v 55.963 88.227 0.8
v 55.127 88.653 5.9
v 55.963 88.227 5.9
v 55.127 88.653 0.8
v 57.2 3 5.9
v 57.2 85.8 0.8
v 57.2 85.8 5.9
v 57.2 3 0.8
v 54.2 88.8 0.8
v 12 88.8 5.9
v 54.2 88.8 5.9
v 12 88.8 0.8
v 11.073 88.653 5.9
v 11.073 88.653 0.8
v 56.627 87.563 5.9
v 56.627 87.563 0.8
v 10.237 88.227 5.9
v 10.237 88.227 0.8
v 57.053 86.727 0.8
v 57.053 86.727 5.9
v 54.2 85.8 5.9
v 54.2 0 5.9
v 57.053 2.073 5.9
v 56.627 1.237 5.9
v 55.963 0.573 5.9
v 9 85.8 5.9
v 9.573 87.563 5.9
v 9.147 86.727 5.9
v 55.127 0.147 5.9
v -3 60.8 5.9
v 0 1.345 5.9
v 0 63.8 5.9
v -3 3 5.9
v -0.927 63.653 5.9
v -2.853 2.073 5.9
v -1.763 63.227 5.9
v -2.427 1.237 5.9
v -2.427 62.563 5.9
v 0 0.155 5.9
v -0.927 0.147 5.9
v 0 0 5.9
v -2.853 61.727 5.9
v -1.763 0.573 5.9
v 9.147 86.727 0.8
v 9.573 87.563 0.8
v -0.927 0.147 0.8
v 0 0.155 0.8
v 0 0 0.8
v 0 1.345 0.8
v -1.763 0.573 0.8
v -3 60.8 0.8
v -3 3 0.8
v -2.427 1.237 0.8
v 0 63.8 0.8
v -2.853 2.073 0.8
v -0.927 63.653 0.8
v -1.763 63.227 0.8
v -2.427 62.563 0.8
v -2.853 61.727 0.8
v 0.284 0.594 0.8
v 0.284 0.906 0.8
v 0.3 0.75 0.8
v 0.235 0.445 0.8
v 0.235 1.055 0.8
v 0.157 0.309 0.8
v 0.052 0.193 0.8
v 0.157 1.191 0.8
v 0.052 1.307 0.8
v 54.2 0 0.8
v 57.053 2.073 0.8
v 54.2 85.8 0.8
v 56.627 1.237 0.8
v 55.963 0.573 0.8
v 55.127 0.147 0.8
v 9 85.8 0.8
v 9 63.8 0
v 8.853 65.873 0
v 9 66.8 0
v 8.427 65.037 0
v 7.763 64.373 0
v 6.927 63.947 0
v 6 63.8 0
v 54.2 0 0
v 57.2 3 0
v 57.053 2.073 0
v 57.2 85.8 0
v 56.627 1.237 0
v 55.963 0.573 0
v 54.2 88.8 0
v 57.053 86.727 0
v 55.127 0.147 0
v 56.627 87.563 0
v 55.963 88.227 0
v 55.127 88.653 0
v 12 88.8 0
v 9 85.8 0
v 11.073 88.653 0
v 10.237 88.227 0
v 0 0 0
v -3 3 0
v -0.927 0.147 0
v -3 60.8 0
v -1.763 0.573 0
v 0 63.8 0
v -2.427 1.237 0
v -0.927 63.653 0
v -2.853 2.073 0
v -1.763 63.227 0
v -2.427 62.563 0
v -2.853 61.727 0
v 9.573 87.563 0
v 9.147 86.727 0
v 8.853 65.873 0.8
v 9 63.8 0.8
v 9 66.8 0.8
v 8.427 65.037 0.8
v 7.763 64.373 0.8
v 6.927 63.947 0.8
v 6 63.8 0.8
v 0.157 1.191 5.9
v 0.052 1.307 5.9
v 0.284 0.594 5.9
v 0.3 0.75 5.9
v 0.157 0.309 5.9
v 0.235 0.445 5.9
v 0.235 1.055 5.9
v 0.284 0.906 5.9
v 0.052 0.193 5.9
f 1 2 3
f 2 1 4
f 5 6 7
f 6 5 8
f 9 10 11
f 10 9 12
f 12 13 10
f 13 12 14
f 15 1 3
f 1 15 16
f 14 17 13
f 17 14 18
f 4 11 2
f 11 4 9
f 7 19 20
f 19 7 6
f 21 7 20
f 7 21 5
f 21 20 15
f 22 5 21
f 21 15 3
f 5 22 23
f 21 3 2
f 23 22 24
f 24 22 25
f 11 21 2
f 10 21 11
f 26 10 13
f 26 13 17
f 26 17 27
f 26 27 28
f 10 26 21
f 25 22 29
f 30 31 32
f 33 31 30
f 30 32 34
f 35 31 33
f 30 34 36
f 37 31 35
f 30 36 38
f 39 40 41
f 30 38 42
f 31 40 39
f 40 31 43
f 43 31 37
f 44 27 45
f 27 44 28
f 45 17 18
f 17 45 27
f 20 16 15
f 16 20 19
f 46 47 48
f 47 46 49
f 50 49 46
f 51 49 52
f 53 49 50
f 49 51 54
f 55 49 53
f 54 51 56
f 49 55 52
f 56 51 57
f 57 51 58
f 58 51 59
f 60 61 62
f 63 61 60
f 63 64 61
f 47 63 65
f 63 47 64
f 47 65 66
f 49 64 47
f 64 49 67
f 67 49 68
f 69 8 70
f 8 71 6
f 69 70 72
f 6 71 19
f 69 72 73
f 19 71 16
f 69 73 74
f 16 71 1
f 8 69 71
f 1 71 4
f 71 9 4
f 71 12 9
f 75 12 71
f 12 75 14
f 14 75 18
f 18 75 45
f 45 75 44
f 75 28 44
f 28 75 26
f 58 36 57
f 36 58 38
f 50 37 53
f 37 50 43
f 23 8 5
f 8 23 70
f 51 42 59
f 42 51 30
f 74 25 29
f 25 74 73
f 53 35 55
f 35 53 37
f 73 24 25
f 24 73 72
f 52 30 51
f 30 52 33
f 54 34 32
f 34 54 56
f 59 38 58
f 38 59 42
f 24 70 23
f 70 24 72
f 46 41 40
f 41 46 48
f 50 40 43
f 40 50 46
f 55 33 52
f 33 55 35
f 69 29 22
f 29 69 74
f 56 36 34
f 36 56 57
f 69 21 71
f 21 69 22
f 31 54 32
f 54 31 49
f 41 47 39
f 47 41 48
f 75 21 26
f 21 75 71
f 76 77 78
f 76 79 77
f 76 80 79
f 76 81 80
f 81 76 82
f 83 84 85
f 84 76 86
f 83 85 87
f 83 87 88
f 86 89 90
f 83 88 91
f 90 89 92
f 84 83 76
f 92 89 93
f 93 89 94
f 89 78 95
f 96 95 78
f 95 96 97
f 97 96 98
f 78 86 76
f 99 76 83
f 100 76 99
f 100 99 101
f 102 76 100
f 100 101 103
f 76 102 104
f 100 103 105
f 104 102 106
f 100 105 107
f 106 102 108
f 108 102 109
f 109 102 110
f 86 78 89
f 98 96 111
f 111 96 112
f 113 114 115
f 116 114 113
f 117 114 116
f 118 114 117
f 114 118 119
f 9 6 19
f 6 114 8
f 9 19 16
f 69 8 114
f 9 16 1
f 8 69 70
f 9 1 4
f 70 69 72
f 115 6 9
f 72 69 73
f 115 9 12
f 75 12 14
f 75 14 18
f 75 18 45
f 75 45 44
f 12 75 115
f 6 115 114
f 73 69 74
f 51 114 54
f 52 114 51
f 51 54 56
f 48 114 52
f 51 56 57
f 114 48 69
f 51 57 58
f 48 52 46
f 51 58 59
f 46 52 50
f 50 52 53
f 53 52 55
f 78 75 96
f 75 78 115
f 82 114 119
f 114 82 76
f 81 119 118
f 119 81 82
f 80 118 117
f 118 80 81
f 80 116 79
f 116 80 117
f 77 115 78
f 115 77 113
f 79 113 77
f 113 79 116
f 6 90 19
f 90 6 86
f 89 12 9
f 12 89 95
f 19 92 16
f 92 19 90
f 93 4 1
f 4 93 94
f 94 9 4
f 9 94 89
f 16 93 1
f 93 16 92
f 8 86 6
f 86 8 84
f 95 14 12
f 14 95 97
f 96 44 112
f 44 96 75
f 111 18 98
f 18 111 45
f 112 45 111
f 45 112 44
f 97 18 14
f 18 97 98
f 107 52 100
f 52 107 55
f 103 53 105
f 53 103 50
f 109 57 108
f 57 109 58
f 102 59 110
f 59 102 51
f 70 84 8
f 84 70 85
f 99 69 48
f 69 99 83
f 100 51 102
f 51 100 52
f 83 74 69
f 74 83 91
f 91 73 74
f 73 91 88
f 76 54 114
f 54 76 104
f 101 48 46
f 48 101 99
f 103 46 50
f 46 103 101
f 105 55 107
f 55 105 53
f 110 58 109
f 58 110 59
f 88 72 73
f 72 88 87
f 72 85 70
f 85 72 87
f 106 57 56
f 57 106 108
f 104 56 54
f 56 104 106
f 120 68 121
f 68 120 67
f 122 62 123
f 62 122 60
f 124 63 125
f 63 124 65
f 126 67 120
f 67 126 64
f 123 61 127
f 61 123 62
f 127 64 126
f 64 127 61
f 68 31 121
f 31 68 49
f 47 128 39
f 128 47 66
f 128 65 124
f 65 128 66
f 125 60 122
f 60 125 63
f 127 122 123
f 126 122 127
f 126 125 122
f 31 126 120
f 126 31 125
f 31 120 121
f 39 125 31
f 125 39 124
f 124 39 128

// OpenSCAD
th=4.8+0.3; // cards thickness
cw = 54+0.2; // card width
ch = 85.6+0.2; // card height

bw = 3; // border width

fr = 3; // fillet radius

sw = 12; // slot width
sh = 25; // slot height
st = 4; // slot thickness

lg = 1000; // large vaule

ct = 0.8; // case thickness

module body_2d() {
    polygon([
        [0,0],
        [cw,0],
        [cw,ch-fr],
        [sw,ch-fr],
        [sw,ch-fr-sh],
        [0, ch-fr-sh],
    ]);
}

module body(th){
    $fn=20;
    union() {
        minkowski() {
            
            translate([0,fr,0]) linear_extrude(th-0.01) body_2d();
            cylinder(r=fr, h=0.01);
        }
        //translate([-lg/2,-lg,0]) cube([lg,lg,lg]);
        
        translate([sw-fr*2,ch-fr-sh+fr*3,0]) difference() {
            translate([0,-fr,0]) linear_extrude(th) square(fr);
            cylinder(h=th, r=fr);
        }
    }
}

translate([0,0,ct]) union() {
    difference() {
        body(th);
        cube([cw, ch, th]);
    }
    translate([0,0,-ct]) body(ct);
    d = 1.5;
    intersection() {
        translate([-d/2+0.3,d/2,0]) cylinder(d=d, h=th, $fn=30);
        cube([cw, ch, th]);
    }
}
